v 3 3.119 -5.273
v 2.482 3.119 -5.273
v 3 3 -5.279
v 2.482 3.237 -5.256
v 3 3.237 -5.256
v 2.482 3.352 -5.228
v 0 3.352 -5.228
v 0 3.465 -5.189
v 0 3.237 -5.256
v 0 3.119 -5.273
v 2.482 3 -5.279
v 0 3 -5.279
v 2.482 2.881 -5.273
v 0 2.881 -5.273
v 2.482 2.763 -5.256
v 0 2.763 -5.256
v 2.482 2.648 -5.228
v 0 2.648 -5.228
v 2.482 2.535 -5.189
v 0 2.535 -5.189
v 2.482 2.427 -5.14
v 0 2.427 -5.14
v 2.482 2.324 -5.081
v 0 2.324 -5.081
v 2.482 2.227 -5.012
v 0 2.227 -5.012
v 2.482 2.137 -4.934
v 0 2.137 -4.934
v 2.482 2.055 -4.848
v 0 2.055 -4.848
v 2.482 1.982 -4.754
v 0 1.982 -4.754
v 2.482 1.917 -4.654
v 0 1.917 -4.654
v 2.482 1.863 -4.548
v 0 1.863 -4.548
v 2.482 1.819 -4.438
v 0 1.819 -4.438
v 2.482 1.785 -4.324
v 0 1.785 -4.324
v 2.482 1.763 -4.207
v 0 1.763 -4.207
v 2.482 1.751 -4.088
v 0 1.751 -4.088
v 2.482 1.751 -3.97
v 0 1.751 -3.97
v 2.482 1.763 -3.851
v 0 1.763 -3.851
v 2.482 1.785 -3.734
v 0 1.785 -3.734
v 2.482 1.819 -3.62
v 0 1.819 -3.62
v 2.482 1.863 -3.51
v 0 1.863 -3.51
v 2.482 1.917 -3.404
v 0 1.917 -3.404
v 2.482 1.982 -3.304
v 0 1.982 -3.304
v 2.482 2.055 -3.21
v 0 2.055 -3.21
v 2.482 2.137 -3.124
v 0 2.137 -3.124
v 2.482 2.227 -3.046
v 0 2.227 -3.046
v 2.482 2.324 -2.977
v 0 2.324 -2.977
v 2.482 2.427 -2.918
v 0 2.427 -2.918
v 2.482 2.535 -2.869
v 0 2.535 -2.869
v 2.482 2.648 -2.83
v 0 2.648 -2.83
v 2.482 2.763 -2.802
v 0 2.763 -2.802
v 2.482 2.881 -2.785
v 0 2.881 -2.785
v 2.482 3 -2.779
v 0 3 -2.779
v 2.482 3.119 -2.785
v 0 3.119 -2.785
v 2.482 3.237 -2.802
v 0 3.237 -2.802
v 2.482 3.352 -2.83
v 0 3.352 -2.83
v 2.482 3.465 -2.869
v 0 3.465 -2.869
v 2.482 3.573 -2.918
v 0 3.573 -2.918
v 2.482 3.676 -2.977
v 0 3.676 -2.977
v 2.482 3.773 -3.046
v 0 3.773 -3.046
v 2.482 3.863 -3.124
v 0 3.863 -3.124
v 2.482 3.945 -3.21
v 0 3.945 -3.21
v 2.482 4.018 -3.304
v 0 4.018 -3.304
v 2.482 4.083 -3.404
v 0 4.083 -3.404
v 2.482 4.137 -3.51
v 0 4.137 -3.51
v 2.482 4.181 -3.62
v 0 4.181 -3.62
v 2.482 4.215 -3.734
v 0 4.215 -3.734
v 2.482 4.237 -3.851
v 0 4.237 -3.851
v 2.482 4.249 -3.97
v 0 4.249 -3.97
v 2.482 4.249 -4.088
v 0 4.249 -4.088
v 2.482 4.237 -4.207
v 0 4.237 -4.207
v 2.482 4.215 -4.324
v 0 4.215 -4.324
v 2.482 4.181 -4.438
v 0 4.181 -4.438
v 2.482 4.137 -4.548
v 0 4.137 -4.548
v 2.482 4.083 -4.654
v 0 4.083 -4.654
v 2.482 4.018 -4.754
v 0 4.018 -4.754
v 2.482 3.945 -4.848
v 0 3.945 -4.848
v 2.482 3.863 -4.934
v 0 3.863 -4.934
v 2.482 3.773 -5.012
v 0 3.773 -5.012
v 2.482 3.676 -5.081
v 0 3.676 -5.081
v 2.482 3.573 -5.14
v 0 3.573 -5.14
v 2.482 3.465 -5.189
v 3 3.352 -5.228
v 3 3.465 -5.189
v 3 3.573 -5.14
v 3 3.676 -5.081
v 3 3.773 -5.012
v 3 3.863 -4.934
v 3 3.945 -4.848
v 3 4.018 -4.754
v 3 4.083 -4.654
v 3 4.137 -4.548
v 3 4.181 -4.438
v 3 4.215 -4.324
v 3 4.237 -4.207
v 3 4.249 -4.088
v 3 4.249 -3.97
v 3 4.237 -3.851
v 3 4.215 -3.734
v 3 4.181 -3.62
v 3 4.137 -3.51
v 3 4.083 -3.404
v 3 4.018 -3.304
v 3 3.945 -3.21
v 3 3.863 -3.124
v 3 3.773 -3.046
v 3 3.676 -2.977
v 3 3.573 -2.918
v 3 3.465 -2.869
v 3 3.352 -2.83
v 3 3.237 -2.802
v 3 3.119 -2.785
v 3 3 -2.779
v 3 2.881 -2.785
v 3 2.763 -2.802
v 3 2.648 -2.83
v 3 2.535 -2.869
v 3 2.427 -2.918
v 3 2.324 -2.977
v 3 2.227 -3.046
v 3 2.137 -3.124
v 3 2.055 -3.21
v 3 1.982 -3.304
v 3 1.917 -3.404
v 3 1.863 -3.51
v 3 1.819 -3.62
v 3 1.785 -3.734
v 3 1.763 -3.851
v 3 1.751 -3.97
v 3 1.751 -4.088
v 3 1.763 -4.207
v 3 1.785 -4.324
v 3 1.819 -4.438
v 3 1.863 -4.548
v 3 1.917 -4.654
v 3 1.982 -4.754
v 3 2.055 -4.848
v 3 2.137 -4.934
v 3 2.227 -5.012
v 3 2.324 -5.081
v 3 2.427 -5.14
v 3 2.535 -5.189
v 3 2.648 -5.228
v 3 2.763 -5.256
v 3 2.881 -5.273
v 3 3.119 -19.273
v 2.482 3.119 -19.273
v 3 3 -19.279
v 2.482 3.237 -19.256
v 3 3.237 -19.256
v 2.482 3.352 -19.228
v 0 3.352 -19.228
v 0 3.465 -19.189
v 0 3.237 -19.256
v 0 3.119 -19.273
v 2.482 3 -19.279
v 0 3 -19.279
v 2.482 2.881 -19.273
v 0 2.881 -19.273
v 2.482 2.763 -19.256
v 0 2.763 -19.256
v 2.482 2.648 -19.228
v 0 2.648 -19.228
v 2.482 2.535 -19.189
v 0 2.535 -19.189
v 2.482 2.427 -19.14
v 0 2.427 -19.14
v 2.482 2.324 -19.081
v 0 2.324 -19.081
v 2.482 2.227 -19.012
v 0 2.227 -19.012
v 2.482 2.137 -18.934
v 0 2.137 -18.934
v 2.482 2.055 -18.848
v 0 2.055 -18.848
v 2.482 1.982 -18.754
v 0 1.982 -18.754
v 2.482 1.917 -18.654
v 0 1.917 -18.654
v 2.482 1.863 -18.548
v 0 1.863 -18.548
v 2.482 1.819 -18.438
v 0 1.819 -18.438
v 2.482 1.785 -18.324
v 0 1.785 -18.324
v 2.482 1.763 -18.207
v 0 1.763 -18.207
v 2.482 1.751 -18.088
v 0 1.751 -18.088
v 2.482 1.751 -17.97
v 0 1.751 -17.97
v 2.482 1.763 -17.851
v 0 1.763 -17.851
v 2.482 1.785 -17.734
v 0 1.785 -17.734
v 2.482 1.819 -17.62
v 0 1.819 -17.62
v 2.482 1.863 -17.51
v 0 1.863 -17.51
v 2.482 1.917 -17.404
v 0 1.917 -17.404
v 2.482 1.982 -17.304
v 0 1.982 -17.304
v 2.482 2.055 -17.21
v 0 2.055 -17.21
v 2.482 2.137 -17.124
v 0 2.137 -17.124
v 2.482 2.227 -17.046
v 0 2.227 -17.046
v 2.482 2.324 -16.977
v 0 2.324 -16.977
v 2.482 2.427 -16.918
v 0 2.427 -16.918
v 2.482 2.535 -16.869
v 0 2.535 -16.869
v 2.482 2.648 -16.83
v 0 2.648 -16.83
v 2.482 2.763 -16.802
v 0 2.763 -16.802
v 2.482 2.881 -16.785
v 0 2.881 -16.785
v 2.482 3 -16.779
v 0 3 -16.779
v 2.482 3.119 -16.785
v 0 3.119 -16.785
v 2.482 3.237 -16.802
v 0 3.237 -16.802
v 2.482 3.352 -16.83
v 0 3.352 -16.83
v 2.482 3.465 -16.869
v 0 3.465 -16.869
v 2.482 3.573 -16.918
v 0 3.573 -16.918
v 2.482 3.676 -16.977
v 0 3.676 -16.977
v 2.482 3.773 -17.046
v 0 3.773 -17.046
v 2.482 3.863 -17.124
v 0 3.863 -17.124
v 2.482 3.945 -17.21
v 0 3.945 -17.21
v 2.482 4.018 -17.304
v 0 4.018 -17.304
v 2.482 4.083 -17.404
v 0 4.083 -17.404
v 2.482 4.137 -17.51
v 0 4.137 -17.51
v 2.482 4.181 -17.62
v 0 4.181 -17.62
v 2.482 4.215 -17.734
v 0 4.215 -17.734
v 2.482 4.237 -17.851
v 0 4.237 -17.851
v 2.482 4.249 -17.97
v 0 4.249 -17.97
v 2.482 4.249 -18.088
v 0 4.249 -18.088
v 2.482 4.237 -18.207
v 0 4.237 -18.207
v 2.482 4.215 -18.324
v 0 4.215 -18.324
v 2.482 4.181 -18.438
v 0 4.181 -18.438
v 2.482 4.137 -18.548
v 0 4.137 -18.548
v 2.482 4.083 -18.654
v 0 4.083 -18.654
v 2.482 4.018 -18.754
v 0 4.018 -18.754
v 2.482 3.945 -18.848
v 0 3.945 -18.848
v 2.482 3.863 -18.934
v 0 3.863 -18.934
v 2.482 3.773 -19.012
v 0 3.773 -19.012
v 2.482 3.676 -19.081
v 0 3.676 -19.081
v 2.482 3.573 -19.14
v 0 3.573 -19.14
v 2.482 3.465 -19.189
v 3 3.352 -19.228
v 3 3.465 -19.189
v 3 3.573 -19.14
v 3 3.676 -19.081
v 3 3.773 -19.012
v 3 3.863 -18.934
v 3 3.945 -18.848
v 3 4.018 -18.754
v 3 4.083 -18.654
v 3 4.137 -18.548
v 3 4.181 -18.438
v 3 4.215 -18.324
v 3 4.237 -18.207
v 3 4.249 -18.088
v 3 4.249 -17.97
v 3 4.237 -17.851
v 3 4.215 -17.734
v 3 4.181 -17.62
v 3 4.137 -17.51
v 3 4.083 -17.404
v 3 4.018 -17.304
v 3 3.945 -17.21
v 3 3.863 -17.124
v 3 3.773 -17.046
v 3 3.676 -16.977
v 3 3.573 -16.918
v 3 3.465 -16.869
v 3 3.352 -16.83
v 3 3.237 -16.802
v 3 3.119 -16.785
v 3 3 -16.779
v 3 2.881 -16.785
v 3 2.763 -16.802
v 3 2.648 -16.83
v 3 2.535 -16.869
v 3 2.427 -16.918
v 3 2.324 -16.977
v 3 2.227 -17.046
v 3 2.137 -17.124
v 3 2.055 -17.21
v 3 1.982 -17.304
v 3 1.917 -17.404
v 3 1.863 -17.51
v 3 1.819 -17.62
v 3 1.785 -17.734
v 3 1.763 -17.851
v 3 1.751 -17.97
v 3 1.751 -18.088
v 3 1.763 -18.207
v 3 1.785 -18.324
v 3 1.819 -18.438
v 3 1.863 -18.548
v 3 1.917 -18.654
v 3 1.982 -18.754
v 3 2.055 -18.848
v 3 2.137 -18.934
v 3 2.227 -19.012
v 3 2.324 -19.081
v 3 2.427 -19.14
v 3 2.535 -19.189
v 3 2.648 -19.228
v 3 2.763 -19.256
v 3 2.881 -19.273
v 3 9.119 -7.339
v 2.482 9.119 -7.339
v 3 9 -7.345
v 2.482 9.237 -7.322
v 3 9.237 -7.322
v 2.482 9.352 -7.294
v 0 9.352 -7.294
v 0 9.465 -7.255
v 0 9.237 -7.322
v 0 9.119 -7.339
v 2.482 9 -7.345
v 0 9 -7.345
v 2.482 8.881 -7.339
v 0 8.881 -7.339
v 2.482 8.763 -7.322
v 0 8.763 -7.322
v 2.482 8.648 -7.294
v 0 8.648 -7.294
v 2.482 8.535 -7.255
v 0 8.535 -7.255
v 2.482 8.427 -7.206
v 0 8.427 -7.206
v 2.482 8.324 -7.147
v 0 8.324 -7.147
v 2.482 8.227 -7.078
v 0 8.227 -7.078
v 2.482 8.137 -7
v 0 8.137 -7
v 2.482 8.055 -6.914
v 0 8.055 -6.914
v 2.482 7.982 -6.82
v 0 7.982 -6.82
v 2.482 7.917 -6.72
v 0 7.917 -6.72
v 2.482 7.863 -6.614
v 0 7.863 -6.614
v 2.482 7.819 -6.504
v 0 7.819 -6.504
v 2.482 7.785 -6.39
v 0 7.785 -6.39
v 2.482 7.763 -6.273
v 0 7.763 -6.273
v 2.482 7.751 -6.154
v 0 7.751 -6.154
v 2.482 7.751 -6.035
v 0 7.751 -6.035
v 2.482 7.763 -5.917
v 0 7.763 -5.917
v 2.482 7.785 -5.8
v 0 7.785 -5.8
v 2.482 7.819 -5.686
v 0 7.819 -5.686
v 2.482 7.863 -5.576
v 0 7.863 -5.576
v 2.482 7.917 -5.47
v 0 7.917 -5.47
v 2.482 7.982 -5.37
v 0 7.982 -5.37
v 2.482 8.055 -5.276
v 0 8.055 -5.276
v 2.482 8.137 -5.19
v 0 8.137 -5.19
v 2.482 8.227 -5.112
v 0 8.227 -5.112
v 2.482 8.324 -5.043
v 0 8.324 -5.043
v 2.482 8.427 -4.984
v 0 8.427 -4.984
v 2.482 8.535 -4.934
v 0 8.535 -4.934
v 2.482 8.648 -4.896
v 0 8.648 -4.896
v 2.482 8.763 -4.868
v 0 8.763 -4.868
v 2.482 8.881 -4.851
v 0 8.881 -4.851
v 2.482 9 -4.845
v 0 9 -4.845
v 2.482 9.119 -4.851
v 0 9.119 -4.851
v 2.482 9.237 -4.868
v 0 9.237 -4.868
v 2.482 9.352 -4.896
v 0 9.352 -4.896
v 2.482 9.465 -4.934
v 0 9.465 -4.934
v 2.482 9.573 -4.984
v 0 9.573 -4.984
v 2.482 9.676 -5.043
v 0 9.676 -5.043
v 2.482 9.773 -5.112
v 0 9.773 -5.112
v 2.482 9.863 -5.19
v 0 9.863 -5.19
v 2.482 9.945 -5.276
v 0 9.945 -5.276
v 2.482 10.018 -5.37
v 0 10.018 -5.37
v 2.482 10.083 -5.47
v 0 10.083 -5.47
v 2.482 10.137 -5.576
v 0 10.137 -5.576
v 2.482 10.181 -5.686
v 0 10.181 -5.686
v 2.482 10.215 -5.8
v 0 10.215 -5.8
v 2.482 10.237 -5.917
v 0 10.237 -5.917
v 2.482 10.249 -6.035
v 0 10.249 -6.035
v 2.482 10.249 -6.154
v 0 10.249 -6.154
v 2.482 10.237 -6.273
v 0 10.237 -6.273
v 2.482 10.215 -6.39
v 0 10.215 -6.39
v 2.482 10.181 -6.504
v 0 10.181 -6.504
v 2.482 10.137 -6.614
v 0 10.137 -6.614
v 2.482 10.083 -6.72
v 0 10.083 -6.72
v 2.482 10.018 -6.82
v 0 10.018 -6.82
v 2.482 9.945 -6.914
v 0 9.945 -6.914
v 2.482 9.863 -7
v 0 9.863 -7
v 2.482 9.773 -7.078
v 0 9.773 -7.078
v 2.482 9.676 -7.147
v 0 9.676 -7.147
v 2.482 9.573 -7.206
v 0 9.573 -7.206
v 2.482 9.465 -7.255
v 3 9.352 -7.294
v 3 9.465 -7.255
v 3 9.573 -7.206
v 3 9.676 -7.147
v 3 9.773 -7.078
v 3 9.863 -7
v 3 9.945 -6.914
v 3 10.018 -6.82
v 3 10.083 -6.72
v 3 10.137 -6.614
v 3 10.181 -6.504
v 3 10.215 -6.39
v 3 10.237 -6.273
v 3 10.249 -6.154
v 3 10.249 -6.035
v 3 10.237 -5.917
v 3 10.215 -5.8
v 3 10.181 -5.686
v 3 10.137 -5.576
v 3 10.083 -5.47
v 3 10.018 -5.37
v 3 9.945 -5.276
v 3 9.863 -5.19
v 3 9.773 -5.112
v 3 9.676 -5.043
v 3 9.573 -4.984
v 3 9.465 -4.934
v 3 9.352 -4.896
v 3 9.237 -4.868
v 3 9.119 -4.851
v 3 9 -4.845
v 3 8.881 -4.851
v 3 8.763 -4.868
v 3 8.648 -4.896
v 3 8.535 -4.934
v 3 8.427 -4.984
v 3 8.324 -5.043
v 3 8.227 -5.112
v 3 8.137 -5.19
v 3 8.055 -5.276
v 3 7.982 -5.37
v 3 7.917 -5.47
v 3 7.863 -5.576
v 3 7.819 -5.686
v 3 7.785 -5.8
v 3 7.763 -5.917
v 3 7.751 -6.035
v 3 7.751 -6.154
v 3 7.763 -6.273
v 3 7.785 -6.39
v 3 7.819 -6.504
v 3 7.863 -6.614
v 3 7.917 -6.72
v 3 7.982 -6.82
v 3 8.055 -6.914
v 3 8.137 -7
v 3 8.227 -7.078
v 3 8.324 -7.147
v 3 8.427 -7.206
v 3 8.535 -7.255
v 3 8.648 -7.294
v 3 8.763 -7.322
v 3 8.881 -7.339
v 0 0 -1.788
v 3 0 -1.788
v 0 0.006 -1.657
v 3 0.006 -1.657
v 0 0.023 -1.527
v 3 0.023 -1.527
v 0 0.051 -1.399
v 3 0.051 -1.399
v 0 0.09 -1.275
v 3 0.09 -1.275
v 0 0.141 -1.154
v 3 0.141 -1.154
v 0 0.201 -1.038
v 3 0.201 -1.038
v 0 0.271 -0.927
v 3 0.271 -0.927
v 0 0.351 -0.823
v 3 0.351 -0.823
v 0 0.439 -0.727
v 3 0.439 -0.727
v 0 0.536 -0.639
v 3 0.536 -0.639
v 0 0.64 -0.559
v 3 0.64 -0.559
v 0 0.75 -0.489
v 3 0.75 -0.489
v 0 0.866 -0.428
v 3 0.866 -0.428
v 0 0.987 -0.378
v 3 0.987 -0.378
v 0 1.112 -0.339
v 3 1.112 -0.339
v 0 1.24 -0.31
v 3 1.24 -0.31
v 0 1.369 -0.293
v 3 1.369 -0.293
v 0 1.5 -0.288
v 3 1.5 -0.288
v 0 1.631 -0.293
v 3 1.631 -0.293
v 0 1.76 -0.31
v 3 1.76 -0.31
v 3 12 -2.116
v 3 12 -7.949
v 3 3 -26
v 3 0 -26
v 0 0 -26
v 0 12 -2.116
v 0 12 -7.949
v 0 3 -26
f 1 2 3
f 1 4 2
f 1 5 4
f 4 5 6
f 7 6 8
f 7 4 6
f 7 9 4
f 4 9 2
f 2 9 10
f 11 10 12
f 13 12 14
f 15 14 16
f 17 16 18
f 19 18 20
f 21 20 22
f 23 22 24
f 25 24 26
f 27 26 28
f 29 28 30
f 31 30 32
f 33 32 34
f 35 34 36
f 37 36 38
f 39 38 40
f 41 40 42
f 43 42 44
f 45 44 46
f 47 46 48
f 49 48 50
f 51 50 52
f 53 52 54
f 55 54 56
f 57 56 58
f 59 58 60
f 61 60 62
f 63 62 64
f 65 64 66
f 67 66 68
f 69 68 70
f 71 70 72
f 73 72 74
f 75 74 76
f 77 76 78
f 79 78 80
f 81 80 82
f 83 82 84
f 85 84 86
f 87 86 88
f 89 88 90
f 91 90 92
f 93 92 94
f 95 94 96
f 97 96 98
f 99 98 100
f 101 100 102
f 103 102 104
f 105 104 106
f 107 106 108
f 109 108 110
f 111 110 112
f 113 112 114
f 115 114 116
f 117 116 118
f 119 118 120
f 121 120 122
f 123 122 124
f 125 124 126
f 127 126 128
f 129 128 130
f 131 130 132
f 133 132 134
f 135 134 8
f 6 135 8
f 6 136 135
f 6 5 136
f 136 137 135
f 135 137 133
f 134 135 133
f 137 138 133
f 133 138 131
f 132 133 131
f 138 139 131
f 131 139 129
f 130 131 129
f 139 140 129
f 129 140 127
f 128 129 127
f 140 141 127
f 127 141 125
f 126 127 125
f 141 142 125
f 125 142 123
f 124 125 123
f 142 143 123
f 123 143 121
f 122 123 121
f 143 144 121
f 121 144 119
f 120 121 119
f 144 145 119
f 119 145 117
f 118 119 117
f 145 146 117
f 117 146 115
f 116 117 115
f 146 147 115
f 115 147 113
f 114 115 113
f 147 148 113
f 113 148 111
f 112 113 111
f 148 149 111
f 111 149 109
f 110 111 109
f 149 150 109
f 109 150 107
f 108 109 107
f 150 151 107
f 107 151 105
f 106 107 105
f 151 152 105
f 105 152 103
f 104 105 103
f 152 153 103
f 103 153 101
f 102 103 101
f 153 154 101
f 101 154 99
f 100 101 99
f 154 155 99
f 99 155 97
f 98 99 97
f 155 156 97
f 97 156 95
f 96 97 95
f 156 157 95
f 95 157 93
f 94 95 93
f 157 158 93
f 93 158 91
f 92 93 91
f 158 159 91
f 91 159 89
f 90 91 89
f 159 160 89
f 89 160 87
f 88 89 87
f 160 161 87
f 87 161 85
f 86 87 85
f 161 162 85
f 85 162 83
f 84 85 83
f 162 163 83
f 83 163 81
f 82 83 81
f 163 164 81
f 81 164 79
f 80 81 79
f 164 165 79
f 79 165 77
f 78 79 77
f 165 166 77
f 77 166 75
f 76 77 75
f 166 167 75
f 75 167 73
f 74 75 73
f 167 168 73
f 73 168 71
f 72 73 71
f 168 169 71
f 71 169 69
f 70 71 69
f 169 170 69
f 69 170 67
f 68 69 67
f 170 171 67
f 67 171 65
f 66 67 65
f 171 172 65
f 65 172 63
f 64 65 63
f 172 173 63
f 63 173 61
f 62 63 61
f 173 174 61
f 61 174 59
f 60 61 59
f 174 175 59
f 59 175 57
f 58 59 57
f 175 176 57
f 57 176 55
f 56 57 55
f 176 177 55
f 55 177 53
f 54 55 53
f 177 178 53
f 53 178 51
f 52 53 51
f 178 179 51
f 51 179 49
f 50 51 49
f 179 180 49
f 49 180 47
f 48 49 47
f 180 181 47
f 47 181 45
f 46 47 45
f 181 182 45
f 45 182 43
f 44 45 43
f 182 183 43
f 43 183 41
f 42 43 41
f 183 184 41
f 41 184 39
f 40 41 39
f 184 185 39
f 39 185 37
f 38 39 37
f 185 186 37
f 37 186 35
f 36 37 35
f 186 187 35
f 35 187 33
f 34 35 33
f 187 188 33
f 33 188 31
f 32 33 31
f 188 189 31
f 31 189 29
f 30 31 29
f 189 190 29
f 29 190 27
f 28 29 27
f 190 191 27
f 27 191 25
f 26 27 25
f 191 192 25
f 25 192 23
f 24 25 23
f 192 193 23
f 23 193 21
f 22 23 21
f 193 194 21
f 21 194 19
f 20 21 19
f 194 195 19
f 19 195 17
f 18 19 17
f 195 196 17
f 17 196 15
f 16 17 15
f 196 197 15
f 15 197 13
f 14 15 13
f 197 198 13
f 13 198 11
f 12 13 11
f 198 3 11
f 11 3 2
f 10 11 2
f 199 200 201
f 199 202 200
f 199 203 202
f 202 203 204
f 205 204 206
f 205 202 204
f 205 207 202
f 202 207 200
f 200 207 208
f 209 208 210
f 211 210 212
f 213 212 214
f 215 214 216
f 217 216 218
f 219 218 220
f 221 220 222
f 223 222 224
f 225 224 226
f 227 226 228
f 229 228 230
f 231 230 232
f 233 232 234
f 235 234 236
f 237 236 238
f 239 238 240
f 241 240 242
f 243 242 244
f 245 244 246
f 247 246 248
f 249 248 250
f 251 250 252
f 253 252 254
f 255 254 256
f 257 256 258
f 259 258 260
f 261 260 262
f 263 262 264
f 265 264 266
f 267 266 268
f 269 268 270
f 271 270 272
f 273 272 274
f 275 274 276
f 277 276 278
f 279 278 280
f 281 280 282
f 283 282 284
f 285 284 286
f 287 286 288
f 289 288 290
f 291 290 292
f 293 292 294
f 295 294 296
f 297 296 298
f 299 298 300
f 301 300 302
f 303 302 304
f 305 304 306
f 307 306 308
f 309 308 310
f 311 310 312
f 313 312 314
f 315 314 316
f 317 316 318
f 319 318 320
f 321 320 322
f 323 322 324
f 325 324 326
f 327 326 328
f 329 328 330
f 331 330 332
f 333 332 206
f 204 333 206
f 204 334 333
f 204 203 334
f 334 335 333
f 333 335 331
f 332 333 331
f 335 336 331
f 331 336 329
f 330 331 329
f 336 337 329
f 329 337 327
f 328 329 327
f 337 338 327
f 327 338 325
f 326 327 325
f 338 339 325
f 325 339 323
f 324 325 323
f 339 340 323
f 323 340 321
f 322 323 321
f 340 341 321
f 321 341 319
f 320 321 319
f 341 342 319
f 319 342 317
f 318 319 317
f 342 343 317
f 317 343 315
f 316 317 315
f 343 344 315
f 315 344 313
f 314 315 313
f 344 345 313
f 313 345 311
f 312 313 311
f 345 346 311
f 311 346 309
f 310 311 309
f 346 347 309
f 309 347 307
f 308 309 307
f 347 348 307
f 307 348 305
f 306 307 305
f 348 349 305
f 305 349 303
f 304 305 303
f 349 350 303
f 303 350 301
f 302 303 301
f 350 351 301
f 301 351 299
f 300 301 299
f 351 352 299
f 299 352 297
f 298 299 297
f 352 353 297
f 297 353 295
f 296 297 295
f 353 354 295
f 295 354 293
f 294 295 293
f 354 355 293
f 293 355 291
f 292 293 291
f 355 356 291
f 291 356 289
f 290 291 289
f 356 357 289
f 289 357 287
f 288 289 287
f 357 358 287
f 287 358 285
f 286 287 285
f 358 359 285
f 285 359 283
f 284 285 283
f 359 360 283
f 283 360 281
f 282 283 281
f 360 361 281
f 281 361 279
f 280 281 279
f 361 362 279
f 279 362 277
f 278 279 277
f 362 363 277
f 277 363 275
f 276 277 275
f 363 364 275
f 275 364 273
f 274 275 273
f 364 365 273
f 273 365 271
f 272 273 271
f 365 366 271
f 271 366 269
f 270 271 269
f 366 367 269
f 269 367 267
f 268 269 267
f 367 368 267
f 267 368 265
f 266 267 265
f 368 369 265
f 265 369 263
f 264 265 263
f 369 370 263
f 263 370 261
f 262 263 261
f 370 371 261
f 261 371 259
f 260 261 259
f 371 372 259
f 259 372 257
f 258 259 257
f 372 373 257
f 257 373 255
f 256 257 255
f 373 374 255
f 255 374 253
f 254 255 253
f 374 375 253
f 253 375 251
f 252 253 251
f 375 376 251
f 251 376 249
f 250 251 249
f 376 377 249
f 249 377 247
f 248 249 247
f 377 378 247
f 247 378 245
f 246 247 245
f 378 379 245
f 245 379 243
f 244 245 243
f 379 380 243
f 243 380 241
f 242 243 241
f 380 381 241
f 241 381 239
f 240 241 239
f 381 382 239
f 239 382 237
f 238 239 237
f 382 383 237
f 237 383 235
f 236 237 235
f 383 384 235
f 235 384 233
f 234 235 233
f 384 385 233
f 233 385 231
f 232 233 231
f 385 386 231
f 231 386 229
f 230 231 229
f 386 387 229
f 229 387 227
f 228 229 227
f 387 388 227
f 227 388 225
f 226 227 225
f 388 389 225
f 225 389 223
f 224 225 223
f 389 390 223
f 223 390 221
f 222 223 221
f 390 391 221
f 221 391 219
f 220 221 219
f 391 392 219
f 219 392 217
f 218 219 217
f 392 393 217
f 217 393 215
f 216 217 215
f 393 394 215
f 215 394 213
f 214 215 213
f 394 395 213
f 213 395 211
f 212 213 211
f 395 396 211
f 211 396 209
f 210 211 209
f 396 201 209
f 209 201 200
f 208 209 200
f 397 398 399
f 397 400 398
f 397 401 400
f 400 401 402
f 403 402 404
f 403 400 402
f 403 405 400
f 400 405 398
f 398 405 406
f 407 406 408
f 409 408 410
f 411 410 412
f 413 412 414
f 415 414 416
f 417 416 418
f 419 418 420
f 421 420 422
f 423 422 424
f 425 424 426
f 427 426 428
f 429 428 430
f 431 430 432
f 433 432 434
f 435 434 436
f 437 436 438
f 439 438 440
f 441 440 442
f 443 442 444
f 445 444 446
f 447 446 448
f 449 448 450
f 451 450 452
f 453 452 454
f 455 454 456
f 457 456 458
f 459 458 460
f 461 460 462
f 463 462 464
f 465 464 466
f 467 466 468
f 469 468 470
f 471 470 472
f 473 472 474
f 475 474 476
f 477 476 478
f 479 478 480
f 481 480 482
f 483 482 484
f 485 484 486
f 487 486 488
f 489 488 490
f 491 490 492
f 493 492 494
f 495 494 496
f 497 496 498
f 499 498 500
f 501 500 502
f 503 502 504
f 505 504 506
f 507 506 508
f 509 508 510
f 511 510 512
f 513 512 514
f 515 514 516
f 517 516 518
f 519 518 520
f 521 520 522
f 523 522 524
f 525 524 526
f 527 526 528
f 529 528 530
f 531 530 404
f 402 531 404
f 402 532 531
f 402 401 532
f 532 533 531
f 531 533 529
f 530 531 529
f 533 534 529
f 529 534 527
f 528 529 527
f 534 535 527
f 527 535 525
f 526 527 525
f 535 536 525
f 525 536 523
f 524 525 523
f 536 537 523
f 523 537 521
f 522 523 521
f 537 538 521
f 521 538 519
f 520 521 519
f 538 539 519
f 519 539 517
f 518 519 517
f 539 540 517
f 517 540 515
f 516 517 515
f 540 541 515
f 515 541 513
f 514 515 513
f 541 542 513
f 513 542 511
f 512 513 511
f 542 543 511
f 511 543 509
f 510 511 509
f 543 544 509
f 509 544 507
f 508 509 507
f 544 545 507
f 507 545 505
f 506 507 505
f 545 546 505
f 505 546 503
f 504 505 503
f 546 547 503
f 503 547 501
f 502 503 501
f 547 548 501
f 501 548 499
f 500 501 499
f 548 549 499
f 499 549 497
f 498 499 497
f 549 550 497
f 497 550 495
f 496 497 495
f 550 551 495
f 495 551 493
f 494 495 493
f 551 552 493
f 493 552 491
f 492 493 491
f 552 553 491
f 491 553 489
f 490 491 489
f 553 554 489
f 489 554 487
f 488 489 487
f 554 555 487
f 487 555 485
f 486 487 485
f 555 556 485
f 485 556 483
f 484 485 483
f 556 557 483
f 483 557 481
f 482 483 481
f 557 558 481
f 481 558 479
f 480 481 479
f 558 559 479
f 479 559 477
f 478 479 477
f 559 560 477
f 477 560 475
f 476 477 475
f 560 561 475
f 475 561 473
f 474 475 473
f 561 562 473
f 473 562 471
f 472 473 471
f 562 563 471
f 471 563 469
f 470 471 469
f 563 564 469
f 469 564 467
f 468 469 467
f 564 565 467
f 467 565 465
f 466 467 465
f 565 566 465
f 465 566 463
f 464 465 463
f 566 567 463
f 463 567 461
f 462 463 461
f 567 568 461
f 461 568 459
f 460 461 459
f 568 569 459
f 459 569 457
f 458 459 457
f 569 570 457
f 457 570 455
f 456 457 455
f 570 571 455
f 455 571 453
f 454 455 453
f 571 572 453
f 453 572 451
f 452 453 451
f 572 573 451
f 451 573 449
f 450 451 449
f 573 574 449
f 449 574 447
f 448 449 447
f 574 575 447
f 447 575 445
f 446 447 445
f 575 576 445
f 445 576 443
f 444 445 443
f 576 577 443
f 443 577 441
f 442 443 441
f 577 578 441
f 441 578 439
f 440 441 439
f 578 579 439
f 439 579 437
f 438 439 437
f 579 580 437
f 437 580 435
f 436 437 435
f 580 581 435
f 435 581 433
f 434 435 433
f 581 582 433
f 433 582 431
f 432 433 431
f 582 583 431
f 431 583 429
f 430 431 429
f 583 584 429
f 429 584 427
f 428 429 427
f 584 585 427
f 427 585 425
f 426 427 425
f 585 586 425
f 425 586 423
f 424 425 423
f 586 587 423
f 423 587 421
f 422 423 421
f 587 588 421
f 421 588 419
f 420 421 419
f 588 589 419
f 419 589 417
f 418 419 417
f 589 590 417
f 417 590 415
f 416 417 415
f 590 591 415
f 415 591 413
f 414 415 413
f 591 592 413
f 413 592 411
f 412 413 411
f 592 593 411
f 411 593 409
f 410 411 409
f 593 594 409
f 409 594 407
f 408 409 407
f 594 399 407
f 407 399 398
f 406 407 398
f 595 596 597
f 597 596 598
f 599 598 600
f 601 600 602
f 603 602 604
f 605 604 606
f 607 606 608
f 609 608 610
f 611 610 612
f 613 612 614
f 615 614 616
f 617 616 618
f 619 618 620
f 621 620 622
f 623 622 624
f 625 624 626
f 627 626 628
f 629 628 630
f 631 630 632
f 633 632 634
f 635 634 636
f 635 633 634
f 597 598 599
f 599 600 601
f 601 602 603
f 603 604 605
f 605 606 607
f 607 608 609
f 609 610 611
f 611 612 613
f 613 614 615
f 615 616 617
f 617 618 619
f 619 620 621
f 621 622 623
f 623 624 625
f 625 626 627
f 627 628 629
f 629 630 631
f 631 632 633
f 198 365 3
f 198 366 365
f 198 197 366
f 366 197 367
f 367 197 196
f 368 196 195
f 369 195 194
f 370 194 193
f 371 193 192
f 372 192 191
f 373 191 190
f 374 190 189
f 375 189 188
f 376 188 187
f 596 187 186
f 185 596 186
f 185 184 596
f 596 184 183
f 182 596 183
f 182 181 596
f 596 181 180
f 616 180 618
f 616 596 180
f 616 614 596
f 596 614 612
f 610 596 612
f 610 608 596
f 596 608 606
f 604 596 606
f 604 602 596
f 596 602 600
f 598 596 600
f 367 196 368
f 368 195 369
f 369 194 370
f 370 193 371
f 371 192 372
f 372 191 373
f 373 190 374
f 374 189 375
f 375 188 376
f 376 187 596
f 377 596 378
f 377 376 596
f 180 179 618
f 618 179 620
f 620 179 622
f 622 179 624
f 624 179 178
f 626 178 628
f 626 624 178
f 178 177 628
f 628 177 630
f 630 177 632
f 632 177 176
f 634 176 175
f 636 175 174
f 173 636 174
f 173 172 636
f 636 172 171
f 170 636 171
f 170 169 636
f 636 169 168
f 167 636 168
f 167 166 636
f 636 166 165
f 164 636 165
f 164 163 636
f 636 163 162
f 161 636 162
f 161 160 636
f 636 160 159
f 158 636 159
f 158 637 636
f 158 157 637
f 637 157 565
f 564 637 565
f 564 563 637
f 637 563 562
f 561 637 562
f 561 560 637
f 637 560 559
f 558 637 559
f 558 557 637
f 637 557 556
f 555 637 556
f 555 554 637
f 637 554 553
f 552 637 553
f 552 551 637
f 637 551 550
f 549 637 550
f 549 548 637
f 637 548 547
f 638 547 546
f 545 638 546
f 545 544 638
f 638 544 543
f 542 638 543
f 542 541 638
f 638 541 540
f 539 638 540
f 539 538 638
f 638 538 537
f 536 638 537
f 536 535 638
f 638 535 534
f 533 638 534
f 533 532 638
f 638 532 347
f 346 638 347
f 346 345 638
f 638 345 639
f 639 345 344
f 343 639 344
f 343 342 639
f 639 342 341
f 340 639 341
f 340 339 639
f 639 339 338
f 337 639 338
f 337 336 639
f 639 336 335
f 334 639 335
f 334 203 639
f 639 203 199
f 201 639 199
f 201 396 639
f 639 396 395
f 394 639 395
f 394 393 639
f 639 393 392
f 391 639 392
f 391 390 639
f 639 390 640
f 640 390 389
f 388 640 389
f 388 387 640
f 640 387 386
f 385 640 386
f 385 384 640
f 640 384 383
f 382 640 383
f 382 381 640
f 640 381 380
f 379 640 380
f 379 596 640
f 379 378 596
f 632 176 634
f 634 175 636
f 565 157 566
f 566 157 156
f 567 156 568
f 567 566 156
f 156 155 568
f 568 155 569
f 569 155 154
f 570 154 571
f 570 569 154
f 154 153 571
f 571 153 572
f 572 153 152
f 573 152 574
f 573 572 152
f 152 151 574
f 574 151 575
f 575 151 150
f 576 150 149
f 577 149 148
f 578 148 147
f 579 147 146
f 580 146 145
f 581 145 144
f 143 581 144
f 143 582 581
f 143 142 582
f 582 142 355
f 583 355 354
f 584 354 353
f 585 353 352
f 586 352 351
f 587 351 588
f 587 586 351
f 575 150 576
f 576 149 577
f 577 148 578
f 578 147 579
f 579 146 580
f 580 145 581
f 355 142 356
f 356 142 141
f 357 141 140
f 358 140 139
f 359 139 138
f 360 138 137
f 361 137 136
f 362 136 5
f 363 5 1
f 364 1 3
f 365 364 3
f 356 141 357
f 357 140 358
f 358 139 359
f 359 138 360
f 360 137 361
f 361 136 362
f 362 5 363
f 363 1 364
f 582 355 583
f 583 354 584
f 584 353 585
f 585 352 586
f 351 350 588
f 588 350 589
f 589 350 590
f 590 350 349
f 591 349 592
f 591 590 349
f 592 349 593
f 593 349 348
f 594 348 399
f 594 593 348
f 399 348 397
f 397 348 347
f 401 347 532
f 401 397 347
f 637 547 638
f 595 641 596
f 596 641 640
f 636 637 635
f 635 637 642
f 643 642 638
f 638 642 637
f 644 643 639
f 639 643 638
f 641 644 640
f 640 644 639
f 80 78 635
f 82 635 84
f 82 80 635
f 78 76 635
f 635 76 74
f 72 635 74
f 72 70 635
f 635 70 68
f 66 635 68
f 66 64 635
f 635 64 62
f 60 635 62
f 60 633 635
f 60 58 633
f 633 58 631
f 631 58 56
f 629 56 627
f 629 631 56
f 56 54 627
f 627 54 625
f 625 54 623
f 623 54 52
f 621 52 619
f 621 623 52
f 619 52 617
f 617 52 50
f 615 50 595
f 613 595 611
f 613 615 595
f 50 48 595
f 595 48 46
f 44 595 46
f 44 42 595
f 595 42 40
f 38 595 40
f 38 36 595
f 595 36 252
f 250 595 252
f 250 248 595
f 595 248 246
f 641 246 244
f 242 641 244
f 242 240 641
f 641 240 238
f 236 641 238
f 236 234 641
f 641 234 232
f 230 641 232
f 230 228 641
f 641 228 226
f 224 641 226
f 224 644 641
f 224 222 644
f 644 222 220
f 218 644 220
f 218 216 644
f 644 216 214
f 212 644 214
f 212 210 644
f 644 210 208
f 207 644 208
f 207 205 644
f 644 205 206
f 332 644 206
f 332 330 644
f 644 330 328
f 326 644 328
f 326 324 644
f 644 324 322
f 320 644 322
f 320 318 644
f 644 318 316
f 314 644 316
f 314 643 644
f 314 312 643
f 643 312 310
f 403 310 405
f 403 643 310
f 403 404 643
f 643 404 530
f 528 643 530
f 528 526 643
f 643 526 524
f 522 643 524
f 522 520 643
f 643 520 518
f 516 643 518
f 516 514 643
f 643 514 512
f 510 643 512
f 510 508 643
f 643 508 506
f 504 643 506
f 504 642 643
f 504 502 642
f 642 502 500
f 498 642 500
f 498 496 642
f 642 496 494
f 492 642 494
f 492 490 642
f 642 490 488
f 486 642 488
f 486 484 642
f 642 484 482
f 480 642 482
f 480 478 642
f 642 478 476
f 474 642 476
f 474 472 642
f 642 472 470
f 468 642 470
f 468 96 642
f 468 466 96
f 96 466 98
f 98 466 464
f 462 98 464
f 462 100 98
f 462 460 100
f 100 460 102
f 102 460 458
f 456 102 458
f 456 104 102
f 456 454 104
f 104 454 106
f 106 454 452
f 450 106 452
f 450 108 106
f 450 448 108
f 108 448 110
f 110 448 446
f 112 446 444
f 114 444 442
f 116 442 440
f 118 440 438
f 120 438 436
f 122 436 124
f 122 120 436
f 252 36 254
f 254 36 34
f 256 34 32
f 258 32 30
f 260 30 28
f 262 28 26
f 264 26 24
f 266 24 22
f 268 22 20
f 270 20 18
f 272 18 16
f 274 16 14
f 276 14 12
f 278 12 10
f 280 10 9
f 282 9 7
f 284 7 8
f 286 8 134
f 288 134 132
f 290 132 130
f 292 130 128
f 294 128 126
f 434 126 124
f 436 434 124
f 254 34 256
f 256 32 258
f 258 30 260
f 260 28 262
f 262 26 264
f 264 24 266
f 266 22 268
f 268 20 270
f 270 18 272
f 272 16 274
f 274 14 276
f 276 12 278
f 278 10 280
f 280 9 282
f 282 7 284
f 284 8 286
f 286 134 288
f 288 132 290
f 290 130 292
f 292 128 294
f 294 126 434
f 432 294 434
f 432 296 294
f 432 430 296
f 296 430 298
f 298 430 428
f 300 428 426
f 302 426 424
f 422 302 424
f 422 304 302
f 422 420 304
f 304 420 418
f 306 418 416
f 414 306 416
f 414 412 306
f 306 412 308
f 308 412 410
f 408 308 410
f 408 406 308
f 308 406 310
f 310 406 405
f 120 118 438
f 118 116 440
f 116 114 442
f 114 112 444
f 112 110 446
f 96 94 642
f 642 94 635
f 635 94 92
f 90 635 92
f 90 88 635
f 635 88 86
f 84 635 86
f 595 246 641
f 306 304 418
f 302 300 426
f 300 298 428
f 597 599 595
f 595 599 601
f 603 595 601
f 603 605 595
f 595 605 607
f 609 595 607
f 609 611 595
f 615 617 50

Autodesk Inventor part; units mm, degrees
ref_plane "YZ Plane" through (0, 0, 0) normal (1, 0, 0) x (0, 1, 0)
ref_plane "XZ Plane" through (0, 0, 0) normal (0, 1, 0) x (-1, 0, 0)
ref_plane "XY Plane" through (0, 0, 0) normal (0, 0, 1) x (1, 0, 0)
sketch "Base" plane through (0, 0, 0) normal (1, 0, 0) x (0, 1, 0)
  line L0 (3, -26) -> (0, -26)
  line L1 (3, -26) -> (12, -7.9488)
  line L2 (12, -7.9488) -> (12, -2.1159)
  line L3 (12, -2.1159) -> (0, 0)
  line L4 (0, -26) -> (0, 0)
  dimension "d0" = 12
  dimension "d1" = 80
  dimension "d2" = 26.5
  dimension "d3" = 26
  dimension "d4" = 3
extrude "BaseFeature" add sketch "Base" along normal blind 3
fillet "BaseFilletsFeature" radius 1.5 1 edges at (1.5, 0, 0)
sketch "BaseHoles" plane through (0, 0, 0) normal (-1, 0, 0) x (0, 0, 1)
  line L0 (-26, 3) -> (-0.529, 3) construction
  line L1 (-0.3104, 1.7605) -> (-2.1159, 12) construction
  circle A0 centre (-18.029, 3) radius 1.75
  circle A1 centre (-4.029, 3) radius 1.75
  circle A2 centre (-18.029, 3) radius 7 construction
  circle A3 centre (-4.029, 3) radius 7 construction
  line L2 (-4.029, 3) -> (-7.0452, 11.7599) construction
  line L3 (-2.1159, 12) -> (-0.3104, 1.7605) projected
  circle A4 centre (-6.0949, 9) radius 1.75
  line L4 (-1.7876, 0) -> (-26, 0) projected
  line L5 (-7.9488, 12) -> (-2.1159, 12) projected
  dimension "d9" = 3.5
  dimension "d12" = 3.5
  dimension "d14" = 14
  dimension "d22" = 14
  dimension "d23" = 3
  dimension "d24" = 3
  dimension "d25" = 9
hole "BaseHolesFeature" at (0, 3, -18.029) at (0, 3, -4.029) at (0, 9, -6.0949) direction (1, 0, 0) diameter 2.5 end through all
equation "\"d24\" = d23"
properties part number "VibroKnuckle"
